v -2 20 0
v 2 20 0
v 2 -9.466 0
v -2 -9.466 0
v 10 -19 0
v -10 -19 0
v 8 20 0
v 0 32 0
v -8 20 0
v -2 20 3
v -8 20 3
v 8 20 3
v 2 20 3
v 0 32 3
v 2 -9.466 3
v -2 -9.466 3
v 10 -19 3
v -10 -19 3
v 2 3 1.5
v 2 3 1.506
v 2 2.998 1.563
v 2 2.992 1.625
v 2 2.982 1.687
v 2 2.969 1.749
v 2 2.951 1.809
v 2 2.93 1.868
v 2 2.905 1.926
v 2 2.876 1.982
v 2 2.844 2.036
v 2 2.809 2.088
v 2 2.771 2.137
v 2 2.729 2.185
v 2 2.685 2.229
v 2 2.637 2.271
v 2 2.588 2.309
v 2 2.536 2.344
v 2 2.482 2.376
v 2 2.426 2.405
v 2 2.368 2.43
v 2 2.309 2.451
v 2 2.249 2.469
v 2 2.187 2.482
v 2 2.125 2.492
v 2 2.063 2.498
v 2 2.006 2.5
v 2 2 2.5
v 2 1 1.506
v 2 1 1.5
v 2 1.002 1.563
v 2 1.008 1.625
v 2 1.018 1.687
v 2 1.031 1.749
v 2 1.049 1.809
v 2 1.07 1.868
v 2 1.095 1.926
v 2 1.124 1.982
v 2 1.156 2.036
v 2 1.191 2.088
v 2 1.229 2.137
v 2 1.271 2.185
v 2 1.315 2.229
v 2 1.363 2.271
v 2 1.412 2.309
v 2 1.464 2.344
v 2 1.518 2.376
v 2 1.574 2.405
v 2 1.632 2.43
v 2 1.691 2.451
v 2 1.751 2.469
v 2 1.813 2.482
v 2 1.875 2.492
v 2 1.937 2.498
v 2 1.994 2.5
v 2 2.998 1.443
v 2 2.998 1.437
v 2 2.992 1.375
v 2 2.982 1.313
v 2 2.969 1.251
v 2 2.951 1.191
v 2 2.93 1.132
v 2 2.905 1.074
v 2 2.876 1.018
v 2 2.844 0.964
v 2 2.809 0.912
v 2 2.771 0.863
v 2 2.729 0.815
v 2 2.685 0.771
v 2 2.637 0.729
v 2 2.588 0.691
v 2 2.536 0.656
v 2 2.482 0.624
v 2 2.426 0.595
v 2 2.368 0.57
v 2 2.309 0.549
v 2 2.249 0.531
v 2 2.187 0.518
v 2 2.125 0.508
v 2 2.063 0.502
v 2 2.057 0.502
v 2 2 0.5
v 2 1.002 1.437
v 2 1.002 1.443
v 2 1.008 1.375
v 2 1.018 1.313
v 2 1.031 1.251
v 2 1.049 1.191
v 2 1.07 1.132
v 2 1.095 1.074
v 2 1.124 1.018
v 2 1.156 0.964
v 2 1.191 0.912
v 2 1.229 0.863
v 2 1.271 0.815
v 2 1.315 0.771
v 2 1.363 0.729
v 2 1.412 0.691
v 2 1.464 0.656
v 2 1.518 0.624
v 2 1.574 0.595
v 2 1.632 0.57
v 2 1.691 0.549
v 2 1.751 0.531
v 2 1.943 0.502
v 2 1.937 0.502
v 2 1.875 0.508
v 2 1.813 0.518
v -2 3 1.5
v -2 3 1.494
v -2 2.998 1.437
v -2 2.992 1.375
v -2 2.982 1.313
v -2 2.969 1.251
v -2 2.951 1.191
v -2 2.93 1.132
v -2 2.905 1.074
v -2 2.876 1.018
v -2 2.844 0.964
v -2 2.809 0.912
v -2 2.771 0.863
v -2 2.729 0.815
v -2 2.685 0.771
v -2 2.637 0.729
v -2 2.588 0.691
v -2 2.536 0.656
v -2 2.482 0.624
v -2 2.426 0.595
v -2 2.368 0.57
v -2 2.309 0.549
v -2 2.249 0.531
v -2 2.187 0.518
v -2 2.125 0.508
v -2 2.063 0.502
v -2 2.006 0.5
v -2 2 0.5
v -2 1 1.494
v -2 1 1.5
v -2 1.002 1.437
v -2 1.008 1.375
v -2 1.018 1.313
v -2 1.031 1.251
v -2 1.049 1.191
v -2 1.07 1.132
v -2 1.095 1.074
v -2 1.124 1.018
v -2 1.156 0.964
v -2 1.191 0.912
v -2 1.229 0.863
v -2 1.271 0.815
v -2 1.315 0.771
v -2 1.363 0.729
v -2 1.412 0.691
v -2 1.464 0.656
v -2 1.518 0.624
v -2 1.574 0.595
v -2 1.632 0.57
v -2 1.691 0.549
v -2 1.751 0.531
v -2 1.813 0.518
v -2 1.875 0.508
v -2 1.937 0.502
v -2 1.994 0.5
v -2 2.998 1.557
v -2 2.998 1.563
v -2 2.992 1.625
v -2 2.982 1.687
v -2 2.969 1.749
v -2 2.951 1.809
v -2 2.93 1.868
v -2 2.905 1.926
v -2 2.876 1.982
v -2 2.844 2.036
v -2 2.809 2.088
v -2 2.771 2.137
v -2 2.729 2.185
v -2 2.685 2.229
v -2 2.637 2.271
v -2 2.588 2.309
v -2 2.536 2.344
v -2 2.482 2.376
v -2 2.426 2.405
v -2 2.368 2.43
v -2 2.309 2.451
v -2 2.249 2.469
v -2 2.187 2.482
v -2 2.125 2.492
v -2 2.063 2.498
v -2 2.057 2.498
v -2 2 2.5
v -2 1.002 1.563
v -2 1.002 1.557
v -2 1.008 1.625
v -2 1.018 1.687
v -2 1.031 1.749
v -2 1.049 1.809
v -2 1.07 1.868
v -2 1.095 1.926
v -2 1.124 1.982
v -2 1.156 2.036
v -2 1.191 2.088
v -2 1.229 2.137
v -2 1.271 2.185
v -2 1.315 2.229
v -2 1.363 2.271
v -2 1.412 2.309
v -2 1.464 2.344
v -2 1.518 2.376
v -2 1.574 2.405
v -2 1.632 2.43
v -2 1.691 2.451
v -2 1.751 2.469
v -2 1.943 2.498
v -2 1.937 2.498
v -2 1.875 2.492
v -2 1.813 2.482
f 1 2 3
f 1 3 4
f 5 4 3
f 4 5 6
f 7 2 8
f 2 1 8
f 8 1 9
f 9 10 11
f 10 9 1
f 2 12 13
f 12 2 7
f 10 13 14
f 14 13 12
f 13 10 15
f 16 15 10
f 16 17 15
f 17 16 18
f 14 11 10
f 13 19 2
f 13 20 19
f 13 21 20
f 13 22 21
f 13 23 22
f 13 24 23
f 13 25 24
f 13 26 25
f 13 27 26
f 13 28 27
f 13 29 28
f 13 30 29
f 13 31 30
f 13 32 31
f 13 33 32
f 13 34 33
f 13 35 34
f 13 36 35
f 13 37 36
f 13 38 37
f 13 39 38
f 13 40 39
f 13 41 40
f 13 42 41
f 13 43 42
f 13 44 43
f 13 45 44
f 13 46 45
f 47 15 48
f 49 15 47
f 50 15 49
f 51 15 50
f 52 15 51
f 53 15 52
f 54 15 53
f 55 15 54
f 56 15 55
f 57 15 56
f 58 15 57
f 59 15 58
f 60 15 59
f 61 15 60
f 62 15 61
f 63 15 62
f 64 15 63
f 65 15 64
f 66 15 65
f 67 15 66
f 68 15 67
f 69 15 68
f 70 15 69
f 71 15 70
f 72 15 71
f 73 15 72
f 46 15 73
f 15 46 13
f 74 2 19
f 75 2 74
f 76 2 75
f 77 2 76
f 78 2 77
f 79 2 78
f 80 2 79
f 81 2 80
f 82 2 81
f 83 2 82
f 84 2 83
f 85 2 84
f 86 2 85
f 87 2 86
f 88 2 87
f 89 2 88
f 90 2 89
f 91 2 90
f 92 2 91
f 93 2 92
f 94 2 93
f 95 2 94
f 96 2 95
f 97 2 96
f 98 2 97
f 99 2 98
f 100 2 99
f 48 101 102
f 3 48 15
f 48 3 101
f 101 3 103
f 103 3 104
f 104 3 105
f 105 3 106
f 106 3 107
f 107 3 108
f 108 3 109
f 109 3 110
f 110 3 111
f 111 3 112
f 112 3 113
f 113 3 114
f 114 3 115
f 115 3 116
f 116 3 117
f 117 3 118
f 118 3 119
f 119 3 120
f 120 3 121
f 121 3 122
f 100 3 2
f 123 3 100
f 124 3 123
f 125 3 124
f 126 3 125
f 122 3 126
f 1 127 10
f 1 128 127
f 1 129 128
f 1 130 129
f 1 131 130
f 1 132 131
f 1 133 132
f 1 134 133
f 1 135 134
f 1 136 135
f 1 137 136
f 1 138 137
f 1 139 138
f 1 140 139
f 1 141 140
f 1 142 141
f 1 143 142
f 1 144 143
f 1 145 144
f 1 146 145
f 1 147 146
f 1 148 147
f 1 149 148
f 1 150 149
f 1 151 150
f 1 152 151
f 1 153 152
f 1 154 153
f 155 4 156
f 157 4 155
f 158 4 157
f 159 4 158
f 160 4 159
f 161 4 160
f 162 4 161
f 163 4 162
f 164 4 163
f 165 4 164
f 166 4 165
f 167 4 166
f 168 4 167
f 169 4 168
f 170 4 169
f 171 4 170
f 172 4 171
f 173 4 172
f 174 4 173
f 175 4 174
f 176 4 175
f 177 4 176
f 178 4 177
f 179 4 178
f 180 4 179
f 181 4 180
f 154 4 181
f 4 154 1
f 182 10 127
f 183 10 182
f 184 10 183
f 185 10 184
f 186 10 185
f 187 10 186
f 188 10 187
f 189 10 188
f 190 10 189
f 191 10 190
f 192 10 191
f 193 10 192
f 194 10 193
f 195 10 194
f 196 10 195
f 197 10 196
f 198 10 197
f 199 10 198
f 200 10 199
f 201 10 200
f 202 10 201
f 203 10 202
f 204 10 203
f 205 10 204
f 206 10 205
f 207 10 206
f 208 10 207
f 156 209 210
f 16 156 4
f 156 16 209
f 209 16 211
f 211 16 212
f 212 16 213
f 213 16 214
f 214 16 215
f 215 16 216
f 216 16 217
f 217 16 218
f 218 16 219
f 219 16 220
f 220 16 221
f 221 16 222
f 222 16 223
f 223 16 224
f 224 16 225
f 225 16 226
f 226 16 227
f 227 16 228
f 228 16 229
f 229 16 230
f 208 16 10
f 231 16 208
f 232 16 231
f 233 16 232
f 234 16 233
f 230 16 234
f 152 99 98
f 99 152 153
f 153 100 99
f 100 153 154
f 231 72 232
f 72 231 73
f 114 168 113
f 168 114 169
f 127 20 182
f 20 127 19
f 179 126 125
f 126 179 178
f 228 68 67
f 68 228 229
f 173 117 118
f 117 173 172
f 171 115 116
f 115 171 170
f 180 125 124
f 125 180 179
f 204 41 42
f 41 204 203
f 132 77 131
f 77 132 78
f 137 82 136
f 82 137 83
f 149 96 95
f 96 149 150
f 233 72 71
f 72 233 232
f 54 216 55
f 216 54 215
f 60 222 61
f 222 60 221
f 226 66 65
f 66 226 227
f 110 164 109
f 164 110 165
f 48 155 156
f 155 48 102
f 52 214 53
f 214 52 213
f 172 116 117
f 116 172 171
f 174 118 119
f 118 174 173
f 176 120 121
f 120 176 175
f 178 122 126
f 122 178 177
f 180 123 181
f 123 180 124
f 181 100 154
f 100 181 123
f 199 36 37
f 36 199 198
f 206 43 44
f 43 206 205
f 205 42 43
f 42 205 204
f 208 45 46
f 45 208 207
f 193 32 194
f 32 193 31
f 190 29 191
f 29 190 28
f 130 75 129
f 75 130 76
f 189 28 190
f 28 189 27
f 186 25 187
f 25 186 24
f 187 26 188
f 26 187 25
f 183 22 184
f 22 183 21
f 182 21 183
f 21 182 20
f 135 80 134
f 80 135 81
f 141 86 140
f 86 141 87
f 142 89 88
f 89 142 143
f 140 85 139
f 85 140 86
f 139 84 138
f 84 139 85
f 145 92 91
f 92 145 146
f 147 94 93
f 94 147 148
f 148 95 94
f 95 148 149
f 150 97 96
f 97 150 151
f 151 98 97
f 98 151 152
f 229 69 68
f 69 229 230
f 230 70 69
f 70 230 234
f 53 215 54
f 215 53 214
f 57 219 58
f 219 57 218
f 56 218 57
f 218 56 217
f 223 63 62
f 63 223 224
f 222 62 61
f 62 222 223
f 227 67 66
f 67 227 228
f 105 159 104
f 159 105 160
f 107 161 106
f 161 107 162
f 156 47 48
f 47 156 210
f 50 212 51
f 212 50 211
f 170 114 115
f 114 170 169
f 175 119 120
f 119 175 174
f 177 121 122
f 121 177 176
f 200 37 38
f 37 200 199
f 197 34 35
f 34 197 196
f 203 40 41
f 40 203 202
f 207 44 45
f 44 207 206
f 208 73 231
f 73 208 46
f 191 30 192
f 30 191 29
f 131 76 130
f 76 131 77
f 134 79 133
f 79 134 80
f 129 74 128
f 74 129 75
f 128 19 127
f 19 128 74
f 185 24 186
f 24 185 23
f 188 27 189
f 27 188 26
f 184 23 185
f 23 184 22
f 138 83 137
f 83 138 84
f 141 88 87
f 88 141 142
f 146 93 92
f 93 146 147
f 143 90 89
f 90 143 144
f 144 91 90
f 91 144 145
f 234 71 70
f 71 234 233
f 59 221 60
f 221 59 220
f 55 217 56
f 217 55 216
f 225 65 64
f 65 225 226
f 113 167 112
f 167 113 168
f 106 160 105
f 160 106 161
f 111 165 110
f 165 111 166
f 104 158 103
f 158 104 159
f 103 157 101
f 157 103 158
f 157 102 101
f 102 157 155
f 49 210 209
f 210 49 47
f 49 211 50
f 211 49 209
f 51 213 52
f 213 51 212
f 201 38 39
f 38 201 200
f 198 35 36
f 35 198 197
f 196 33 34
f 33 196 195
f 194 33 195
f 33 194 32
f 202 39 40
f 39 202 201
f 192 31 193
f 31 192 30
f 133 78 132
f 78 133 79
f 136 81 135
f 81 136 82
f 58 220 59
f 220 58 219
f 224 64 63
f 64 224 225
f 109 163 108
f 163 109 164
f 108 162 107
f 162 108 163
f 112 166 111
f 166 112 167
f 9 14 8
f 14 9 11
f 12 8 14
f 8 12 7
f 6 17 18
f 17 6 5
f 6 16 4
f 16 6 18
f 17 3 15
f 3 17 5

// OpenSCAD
totalHeight = 3;

//Arrow
arrowWidth = 16;
arrowLength = 12;

//Base
baseWidth = 4;
baseLength = -30;

//Vane
vaneAngle = 50;
vaneWidth = 20;
vaneHeight = 10;

//Hole
holeHeight = baseWidth + 1;
holeR1 = totalHeight / 3;
holeR2 = totalHeight / 3;
holeFragments = 100;

module Arrow(length, width, angle, height=totalHeight, heights=undef, center=undef, centerXYZ=[true, false, false]) {
    //Calcluate the angle
    triangleAngle = (angle!=undef) ? angle : atan(length / (width/2));
	
    //Calcute the length
    triangleLength = (width==undef) ? (length/sin((180-(angle*2))/2)) : (width / cos(triangleAngle))/2;
	
    //Calculate the width
    triangleWidth = (width==undef) ? (cos(angle)*triangleLength)*2:width;
    
	// Calculate Heights at each point
	heightAB = ((heights==undef) ? height : heights[0])/2;
	heightBC = ((heights==undef) ? height : heights[1])/2;
	heightCA = ((heights==undef) ? height : heights[2])/2;
	centerZ = (center || (center==undef && centerXYZ[2])) ? 0 : max(heightAB, heightBC, heightCA);

	// Calculate Offsets for centering
	offsetX = (center || (center==undef && centerXYZ[0])) ? ((cos(triangleAngle) * triangleLength) + triangleWidth) / 3:0;
	offsetY = (center || (center==undef && centerXYZ[1])) ? (sin(triangleAngle) * triangleLength) / 3:0;	
    
    //Calculate the points
	pointAB1 = [-offsetX, -offsetY, centerZ - heightAB];
	pointAB2 = [-offsetX, -offsetY, centerZ + heightAB];
	pointBC1 = [triangleWidth - offsetX, -offsetY, centerZ - heightBC];
	pointBC2 = [triangleWidth - offsetX, -offsetY, centerZ + heightBC];
	pointCA1 = [(cos(triangleAngle) * triangleLength) - offsetX,(sin(triangleAngle) * triangleLength) - offsetY, centerZ - heightCA];
	pointCA2 = [(cos(triangleAngle) * triangleLength) - offsetX,(sin(triangleAngle) * triangleLength) - offsetY, centerZ + heightCA];

    //Set the triangle points
    trianglePoints = [
        pointAB1, 
        pointBC1, 
        pointCA1,
        pointAB2, 
        pointBC2, 
        pointCA2
    ];
    
    //Set the triangle faces
    triangleFaces = [
        [0, 1, 2],
        [3, 5, 4],
        [0, 3, 1],
        [1, 3, 4],
        [1, 4, 2],
        [2, 4, 5],
        [2, 5, 0],
        [0, 5, 3]
    ];
	polyhedron(trianglePoints, triangleFaces);
}

module Base(width, length, height = totalHeight) {
    
    //Set the base points
    basePoints = [
       //x,     y,      z
        [0,     0,      0],       //0
        [width, 0,      0],       //1
        [width, length, 0],       //2
        [0,     length, 0],       //3
        [0,     0,      height],  //4
        [width, 0,      height],  //5
        [width, length, height],  //6
        [0,     length, height],  //7 
    ];
  
    //Set the base faces
    baseFaces = [
        [0,1,2,3], //bottom
        [4,5,1,0], //front
        [7,6,5,4], //top
        [5,6,2,1], //right
        [6,7,3,2], //back
        [7,4,0,3] //left
    ];
  
    //Create the base
    polyhedron(basePoints, baseFaces);
}

module Vane(width, angle=60, H, height=totalHeight, heights=undef, center=undef, centerXYZ=[true,false,false]) {
    
    //Calculate the heights at each point
    heightAB = ((heights==undef) ? height : heights[0]) / 2;
	heightBC = ((heights==undef) ? height : heights[1]) / 2;
	heightCD = ((heights==undef) ? height : heights[2]) / 2;
	heightDA = ((heights==undef) ? height : ((len(heights) > 3) ? heights[3] : heights[2])) / 2;
    
    //Calculate the centers
    centerX = (center || (center==undef && centerXYZ[0])) ? 0 : width / 2;
	centerY = (center || (center==undef && centerXYZ[1])) ? 0 : H / 2;
	centerZ = (center || (center==undef && centerXYZ[2])) ? 0 : max(heightAB, heightBC, heightCD, heightDA);
    
    //Calculate the points
    y = H / 2;
	bx = width / 2;
    adX = H / tan(angle);
	dx = (width - (adX * 2)) / 2;

	pointAB1 = [centerX - bx, centerY - y, centerZ - heightAB];
	pointAB2 = [centerX - bx, centerY - y, centerZ + heightAB];
	pointBC1 = [centerX + bx, centerY - y, centerZ - heightBC];
	pointBC2 = [centerX + bx, centerY - y, centerZ + heightBC];
	pointCD1 = [centerX + dx, centerY + y, centerZ - heightCD];
	pointCD2 = [centerX + dx, centerY + y, centerZ + heightCD];
	pointDA1 = [centerX - dx, centerY + y, centerZ - heightDA];
	pointDA2 = [centerX - dx, centerY + y, centerZ + heightDA];
    
    //Set the vane points
    vanePoints = [
        pointAB1,
        pointBC1, 
        pointCD1, 
        pointDA1,
        pointAB2, 
        pointBC2, 
        pointCD2, 
        pointDA2
    ];    
    
    //Set the vane faces
    vaneFaces = [
        [0, 1, 2],
        [0, 2, 3],
        [4, 6, 5],
        [4, 7, 6],
        [0, 4, 1],
        [1, 4, 5],
        [1, 5, 2],
        [2, 5, 6],
        [2, 6, 3],
        [3, 6, 7],
        [3, 7, 0],
        [0, 7, 4]
    ];
    
    //Create the vane
    polyhedron(vanePoints, vaneFaces);
}

module Hole() {
    //Create the hole
    rotate([0,90,0]) cylinder(h=holeHeight, r1=holeR1, r2=holeR1, center=true, $fn=holeFragments);
}

//Show the arrow
translate([0,20,0]) Arrow(width = arrowWidth, length = arrowLength);

//Show the base with hole
difference() {
    translate([baseWidth/-2,20,0]) Base(width = baseWidth, length = baseLength);
    translate([0,2,totalHeight/2]) Hole();
}

//Show the vane
translate([0,-19,0]) Vane(width = vaneWidth, angle = vaneAngle, H = vaneHeight);
